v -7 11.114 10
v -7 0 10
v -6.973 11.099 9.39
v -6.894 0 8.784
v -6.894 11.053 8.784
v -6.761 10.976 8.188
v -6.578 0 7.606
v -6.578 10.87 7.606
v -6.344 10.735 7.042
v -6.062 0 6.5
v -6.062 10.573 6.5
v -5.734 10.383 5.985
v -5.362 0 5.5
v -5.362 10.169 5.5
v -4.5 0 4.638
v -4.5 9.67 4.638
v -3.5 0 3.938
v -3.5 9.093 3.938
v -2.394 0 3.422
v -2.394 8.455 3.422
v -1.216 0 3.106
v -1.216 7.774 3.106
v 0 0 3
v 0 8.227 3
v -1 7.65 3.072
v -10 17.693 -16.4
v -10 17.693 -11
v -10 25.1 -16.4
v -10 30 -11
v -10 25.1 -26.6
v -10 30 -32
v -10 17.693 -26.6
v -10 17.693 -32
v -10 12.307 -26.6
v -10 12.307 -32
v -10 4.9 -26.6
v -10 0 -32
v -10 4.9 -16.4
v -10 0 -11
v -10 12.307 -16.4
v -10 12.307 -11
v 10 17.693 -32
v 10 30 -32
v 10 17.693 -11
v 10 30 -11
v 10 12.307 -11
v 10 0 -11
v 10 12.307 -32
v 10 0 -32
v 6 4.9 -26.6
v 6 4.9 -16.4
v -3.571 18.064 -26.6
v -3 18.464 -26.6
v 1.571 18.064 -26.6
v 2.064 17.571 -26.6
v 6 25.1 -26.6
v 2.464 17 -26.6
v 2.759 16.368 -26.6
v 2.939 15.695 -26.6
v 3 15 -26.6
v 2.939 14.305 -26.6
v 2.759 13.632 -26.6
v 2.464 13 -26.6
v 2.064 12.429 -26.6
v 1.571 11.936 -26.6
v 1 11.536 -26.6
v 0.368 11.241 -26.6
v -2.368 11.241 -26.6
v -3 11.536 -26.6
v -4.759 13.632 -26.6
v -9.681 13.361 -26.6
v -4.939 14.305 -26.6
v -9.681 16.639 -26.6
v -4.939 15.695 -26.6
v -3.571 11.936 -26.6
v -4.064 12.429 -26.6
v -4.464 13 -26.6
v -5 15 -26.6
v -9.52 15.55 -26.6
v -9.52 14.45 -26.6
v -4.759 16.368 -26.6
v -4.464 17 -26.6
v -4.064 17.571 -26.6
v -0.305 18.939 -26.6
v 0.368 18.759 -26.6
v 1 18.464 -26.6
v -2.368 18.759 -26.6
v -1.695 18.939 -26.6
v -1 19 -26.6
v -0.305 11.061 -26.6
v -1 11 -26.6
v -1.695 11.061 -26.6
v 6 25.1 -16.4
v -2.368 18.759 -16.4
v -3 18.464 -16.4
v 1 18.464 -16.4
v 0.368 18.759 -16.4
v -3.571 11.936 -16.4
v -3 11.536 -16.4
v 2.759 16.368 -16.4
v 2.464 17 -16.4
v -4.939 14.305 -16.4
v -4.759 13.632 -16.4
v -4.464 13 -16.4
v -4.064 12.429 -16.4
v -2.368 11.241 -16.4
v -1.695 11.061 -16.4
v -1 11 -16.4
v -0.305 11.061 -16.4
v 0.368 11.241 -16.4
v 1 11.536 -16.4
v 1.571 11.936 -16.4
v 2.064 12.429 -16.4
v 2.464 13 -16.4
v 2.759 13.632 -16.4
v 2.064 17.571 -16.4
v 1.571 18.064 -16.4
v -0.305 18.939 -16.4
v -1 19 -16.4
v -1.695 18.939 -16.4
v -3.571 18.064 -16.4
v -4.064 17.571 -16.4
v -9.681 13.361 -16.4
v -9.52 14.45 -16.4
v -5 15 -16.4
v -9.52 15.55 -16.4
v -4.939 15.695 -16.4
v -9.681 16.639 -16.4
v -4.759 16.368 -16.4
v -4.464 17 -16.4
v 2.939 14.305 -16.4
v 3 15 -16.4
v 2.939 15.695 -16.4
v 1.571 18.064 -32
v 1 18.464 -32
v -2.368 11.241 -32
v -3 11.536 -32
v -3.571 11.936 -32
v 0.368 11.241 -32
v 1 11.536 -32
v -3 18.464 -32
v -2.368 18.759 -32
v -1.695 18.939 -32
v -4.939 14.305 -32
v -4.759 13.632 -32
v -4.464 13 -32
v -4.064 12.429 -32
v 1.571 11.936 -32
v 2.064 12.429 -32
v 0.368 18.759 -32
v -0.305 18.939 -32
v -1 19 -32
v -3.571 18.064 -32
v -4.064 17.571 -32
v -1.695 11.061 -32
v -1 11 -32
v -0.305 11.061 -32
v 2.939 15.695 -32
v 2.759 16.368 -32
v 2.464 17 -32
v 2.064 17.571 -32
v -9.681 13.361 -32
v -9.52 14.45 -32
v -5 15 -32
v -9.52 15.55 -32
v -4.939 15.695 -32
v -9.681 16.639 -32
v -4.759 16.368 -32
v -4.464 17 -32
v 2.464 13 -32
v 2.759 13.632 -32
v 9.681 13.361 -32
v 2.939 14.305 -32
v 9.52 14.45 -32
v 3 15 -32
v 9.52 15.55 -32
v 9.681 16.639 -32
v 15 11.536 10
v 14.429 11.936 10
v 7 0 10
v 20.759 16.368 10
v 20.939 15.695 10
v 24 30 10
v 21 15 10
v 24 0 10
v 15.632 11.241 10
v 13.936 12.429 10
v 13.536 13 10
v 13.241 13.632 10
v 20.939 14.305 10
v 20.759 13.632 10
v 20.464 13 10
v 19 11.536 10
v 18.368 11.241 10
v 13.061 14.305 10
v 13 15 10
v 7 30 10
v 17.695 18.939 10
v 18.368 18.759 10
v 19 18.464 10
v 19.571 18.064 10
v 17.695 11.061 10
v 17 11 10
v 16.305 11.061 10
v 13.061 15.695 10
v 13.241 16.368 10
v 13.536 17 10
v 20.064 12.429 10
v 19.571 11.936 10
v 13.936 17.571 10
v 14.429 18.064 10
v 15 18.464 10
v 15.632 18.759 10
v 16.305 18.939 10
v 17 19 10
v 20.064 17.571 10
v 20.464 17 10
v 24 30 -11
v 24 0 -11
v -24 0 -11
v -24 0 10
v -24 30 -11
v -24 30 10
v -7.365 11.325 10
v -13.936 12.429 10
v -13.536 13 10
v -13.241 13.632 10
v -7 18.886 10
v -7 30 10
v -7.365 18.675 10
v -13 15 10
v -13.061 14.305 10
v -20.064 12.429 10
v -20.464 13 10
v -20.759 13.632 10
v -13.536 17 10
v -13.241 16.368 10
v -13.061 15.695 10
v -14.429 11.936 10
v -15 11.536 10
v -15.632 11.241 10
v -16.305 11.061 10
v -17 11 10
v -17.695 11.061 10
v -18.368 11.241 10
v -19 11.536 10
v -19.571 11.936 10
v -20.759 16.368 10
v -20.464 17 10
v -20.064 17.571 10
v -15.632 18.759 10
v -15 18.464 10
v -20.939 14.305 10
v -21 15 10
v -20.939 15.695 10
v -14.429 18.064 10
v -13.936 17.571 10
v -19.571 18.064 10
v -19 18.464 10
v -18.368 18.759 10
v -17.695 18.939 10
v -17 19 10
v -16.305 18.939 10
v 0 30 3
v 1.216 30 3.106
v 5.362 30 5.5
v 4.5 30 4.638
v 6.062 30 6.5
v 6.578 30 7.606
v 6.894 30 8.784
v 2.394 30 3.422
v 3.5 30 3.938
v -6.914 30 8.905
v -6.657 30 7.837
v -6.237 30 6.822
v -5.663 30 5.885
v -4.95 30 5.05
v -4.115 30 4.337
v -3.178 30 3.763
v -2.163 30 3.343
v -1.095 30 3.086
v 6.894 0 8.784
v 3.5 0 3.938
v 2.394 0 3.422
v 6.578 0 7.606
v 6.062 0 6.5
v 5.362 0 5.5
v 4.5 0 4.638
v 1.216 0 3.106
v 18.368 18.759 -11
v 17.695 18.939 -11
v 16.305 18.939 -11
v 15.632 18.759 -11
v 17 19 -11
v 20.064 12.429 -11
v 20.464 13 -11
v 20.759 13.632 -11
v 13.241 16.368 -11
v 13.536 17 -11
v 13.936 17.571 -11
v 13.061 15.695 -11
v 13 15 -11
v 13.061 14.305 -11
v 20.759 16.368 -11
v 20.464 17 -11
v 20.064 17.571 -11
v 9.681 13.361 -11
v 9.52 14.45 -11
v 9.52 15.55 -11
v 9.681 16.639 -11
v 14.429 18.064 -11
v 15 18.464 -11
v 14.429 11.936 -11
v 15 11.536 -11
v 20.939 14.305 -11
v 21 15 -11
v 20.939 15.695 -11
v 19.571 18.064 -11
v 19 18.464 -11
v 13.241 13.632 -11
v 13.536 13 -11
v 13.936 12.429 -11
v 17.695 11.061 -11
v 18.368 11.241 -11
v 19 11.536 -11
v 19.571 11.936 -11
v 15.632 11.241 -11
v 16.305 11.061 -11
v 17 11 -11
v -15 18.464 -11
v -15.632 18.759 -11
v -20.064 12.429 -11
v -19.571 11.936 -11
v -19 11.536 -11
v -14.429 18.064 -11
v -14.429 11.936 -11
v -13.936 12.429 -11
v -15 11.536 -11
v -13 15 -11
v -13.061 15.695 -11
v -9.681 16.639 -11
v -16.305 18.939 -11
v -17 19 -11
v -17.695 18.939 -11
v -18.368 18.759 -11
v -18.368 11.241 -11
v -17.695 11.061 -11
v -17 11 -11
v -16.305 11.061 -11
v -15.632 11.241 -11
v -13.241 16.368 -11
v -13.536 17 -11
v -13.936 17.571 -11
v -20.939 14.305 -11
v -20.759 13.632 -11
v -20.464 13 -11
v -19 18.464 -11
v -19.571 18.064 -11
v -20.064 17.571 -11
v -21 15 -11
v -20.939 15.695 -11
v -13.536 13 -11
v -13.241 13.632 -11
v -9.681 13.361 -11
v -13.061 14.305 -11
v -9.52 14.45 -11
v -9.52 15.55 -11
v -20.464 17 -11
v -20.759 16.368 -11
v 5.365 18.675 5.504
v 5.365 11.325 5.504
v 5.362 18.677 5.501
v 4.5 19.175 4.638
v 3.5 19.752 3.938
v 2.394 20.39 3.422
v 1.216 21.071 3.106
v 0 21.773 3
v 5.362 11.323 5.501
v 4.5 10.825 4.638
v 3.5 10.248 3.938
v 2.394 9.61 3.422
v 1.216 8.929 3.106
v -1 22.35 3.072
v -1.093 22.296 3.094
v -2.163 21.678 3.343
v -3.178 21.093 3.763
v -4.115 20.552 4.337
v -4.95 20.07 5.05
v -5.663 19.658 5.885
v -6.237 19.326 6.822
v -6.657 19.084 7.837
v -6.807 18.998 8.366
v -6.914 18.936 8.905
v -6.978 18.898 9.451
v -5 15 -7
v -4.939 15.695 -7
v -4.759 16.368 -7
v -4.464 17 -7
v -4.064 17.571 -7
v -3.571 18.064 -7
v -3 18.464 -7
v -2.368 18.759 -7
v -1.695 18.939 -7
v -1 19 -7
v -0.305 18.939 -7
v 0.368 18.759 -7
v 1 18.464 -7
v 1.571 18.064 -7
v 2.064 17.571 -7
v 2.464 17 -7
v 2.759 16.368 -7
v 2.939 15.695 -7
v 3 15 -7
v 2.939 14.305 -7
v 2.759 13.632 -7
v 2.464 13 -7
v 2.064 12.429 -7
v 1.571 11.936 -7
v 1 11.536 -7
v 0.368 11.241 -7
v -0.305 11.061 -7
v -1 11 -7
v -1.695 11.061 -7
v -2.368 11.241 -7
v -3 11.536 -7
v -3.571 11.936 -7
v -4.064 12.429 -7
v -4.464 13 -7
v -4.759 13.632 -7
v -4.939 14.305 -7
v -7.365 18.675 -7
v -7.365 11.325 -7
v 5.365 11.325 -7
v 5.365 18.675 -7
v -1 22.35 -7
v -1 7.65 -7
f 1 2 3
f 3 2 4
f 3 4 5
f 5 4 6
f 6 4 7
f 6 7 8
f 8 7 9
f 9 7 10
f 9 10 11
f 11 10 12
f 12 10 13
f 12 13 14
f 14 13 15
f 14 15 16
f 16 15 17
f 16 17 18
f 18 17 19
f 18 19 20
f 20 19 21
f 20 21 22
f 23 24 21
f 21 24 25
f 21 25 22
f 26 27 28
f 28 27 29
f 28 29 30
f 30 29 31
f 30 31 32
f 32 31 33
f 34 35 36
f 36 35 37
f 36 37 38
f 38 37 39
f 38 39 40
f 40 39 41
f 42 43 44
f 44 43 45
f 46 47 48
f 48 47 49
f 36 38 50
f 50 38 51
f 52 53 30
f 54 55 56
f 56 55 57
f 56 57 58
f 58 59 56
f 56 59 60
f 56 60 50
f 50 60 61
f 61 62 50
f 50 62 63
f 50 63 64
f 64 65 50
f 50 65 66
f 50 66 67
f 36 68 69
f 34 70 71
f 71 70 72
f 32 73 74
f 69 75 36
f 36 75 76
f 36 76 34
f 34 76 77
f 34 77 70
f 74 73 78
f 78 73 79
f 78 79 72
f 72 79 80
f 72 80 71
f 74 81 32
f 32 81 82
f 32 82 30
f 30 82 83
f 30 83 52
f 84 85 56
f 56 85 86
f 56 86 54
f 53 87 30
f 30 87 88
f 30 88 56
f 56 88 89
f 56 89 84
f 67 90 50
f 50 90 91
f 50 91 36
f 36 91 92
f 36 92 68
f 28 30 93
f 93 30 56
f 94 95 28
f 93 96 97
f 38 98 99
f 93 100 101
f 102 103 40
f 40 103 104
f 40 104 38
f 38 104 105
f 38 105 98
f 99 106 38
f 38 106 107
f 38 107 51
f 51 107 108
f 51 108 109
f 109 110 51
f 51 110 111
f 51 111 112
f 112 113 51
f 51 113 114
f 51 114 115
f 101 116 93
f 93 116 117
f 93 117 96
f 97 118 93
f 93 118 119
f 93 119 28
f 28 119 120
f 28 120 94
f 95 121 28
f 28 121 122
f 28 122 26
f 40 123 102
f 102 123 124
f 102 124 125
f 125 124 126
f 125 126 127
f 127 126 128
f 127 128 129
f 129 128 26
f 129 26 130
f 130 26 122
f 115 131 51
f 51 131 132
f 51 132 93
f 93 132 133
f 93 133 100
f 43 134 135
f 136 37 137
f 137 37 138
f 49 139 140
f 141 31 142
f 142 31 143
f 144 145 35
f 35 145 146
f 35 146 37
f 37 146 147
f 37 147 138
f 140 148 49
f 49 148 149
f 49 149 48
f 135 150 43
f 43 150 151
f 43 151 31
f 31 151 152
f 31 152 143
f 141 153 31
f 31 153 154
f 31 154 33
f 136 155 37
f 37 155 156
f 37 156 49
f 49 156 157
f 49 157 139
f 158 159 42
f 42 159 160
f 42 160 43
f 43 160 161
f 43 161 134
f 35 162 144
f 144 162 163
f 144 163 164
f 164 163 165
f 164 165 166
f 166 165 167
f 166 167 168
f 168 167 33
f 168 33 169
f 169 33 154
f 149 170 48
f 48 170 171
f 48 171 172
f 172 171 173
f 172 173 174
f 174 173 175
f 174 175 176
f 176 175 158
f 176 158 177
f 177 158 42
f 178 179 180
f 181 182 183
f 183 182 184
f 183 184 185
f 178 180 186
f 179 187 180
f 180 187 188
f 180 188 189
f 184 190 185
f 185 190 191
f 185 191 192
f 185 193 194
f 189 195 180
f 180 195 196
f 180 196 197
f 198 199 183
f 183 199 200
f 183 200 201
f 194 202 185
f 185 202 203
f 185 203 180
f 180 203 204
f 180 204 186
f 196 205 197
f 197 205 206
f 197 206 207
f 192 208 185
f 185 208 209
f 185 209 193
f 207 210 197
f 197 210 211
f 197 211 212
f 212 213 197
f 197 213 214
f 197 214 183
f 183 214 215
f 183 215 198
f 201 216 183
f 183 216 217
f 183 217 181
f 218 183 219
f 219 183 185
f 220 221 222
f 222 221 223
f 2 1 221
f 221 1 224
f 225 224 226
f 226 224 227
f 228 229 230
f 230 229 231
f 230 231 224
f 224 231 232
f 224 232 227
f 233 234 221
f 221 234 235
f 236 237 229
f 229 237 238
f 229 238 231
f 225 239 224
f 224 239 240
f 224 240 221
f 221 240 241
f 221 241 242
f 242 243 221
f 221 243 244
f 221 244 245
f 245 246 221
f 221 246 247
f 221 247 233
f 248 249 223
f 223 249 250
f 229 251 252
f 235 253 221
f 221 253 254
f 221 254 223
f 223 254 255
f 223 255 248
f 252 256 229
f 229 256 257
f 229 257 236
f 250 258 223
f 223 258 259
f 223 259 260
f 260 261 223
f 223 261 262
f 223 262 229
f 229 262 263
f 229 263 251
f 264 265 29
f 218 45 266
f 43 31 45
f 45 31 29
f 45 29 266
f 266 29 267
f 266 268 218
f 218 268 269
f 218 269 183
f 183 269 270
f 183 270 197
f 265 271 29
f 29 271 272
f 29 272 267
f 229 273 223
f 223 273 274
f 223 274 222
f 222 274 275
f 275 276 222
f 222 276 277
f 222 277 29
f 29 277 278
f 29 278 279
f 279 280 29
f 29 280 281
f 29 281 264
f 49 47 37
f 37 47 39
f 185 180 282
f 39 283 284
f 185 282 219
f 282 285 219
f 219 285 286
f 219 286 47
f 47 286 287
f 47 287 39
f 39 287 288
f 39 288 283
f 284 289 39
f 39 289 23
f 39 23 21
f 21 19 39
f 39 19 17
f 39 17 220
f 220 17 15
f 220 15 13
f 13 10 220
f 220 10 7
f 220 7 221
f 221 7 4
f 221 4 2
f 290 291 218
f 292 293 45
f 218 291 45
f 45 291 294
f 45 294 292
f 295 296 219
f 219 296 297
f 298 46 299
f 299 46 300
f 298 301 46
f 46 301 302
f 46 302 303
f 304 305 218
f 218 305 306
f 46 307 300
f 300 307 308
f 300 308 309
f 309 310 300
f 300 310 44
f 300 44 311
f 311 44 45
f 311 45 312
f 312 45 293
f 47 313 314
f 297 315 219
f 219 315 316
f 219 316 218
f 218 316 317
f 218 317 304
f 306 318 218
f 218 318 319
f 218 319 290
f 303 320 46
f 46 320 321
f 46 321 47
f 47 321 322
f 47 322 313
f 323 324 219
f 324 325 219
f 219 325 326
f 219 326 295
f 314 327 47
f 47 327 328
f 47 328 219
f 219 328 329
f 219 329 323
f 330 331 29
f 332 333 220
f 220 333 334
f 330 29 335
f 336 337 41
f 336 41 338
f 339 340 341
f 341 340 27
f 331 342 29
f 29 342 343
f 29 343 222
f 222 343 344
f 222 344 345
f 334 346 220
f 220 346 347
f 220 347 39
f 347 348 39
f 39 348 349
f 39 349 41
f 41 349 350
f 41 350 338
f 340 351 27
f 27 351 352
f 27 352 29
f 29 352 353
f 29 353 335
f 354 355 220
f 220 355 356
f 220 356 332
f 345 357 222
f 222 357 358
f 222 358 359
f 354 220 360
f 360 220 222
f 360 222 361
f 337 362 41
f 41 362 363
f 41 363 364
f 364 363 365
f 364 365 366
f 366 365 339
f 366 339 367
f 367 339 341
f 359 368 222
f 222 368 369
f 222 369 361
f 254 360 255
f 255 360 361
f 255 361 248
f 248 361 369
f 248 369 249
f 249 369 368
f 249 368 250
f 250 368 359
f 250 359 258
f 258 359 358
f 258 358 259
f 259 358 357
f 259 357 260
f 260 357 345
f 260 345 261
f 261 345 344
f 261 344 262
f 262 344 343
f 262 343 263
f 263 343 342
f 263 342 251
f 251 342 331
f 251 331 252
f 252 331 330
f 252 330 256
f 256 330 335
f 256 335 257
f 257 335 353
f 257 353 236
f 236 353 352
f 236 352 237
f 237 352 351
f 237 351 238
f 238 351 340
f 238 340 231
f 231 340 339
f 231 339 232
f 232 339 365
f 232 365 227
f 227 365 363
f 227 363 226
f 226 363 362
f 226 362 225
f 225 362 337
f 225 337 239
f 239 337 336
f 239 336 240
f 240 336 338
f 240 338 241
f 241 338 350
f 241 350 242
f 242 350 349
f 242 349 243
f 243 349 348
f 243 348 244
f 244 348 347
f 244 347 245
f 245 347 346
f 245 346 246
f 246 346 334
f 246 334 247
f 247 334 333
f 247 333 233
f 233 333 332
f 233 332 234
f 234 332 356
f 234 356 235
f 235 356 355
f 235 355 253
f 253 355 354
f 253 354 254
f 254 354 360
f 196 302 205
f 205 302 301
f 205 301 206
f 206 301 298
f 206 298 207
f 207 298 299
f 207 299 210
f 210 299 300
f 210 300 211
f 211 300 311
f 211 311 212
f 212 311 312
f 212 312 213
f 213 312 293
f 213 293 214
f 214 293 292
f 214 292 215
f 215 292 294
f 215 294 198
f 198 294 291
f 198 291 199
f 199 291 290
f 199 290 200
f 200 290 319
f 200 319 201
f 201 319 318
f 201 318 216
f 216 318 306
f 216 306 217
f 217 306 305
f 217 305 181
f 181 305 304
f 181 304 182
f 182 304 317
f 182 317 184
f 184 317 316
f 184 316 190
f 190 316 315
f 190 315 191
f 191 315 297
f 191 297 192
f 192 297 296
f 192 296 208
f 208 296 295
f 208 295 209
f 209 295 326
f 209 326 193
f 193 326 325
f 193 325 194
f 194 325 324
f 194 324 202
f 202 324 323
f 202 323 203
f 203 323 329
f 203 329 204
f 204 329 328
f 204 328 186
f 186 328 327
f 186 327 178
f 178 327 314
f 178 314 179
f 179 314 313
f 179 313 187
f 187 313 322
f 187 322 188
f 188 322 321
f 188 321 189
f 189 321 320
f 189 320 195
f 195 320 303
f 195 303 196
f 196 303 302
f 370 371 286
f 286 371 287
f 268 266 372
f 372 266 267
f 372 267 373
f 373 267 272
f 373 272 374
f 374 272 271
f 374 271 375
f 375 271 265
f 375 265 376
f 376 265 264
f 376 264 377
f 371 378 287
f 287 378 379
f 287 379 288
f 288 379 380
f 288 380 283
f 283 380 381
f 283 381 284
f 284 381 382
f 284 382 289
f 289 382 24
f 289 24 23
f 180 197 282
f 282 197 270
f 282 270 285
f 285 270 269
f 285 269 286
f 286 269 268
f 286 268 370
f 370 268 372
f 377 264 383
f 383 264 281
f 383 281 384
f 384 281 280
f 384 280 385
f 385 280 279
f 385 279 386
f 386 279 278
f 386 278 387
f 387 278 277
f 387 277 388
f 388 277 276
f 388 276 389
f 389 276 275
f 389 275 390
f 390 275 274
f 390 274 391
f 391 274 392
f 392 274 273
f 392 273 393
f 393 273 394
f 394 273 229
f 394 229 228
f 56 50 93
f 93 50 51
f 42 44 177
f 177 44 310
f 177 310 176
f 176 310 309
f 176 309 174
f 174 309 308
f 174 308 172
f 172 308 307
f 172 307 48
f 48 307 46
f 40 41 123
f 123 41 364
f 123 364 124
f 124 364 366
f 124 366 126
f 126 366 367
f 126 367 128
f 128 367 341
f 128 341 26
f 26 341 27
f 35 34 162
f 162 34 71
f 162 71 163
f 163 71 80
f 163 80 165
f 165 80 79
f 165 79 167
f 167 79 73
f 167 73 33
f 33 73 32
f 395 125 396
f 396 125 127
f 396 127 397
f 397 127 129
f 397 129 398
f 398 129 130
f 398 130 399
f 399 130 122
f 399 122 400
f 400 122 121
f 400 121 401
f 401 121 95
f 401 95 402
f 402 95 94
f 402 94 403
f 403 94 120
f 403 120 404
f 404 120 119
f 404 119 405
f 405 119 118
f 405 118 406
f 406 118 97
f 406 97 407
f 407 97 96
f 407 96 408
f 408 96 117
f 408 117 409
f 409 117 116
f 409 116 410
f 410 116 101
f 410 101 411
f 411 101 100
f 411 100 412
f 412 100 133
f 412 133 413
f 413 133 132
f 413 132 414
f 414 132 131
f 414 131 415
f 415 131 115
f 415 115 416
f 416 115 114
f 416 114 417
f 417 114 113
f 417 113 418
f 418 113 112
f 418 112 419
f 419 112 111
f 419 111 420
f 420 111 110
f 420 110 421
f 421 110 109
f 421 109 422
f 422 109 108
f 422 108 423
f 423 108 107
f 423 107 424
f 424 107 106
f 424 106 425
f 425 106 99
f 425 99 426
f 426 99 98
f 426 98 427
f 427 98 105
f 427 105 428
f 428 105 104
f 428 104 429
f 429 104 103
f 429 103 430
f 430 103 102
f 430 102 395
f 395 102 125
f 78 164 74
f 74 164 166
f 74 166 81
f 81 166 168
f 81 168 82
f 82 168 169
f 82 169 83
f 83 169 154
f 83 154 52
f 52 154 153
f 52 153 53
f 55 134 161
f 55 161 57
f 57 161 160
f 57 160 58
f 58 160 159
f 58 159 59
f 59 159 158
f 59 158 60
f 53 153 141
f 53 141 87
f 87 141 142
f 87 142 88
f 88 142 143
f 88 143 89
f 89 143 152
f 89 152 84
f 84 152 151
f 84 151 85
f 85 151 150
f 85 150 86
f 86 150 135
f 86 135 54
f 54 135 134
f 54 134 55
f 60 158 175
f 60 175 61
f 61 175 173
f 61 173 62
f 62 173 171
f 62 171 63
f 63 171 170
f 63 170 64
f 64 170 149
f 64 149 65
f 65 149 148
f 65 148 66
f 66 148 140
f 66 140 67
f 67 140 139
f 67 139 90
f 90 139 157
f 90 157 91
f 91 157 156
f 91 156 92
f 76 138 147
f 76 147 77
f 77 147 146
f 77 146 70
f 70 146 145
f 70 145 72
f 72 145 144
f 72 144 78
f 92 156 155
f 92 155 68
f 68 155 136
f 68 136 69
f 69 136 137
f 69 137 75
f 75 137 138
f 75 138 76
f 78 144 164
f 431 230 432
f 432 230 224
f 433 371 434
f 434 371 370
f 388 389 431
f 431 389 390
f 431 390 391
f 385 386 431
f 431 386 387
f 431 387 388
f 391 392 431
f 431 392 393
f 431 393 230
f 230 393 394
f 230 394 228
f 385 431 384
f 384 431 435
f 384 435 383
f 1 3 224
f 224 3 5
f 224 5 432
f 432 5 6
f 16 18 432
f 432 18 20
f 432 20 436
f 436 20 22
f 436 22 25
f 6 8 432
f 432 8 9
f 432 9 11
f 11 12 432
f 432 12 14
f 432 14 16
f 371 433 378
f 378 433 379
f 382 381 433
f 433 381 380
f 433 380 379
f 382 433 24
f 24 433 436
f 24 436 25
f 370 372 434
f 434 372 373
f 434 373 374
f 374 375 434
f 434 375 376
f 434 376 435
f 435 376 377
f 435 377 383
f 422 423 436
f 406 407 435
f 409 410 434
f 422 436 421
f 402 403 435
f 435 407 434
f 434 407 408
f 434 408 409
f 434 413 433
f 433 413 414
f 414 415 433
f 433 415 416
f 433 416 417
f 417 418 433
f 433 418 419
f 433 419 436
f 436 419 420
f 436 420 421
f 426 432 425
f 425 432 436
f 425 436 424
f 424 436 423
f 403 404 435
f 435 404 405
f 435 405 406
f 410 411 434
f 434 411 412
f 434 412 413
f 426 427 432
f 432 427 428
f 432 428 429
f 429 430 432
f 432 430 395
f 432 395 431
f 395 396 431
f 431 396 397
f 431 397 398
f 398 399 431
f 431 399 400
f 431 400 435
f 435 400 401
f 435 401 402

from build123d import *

# Parameters (mm, degrees)
SKETCH_1_W          = 48
SKETCH_1_H          = 20
EXTRUDE_1_DEPTH     = 30
SKETCH_2_W          = 14
SKETCH_2_H          = 30
CUT_EXTRUDE_1_DEPTH = 7
SKETCH_7_W          = 22
SKETCH_7_H          = 30
EXTRUDE_2_DEPTH     = 48
SKETCH_8_W          = 21
SKETCH_8_H          = 30
CUT_EXTRUDE_2_DEPTH = 14
SKETCH_9_W          = 21
SKETCH_9_H          = 30
CUT_EXTRUDE_3_DEPTH = 14
SKETCH_11_W         = 10.2
SKETCH_11_H         = 20.2
CUT_EXTRUDE_4_DEPTH = 56.497747702
SKETCH_13_R         = 4
CUT_EXTRUDE_5_DEPTH = 44.783558558
SKETCH_14_R         = 4
CUT_EXTRUDE_6_DEPTH = 44.783558558
FILLET_1_R          = 7
SKETCH1_W           = 10.2
SKETCH1_H           = 20.2
BOSS_EXTRUDE1_DEPTH = 4
SKETCH_20_R         = 7.5
CUT_EXTRUDE_8_DEPTH = 44.783558558
SKETCH3_R           = 4
CUT_EXTRUDE2_DEPTH  = 57.920997883
CUT_EXTRUDE3_START  = -25
CUT_EXTRUDE3_DEPTH  = 20


with BuildPart() as part:
    # Эскиз1 → Бобышка-Вытянуть1 (new body)
    with BuildSketch(Plane(origin=(0, 0, 0), x_dir=(1, 0, 0), z_dir=(0, 1, 0))):
        Rectangle(SKETCH_1_W, SKETCH_1_H)
    extrude(amount=EXTRUDE_1_DEPTH)

    # Эскиз2 → Вырез-Вытянуть1 (cut)
    with BuildSketch(Plane.XY.offset(10)):
        with Locations((0, 15)):
            Rectangle(SKETCH_2_W, SKETCH_2_H)
    extrude(amount=-CUT_EXTRUDE_1_DEPTH, mode=Mode.SUBTRACT)

    # Эскиз7 → Бобышка-Вытянуть2 (add)
    with BuildSketch(Plane(origin=(24, 0, 0), x_dir=(0, 0, -1), z_dir=(1, 0, 0))):
        with Locations((21, 15)):
            Rectangle(SKETCH_7_W, SKETCH_7_H)
    extrude(amount=-EXTRUDE_2_DEPTH)

    # Эскиз8 → Вырез-Вытянуть2 (cut)
    with BuildSketch(Plane(origin=(24, 0, 0), x_dir=(0, 0, -1), z_dir=(1, 0, 0))):
        with Locations((21.5, 15)):
            Rectangle(SKETCH_8_W, SKETCH_8_H)
    extrude(amount=-CUT_EXTRUDE_2_DEPTH, mode=Mode.SUBTRACT)

    # Эскиз9 → Вырез-Вытянуть3 (cut)
    with BuildSketch(Plane.ZY.offset(24)):
        with Locations((-21.5, 15)):
            Rectangle(SKETCH_9_W, SKETCH_9_H)
    extrude(amount=-CUT_EXTRUDE_3_DEPTH, mode=Mode.SUBTRACT)

    # Эскиз11 → Вырез-Вытянуть4 (cut, through all)
    with BuildSketch(Plane.ZY.offset(10)):
        with Locations((-21.5, 15)):
            Rectangle(SKETCH_11_W, SKETCH_11_H)
    extrude(amount=-CUT_EXTRUDE_4_DEPTH, mode=Mode.SUBTRACT)

    # Эскиз13 → Вырез-Вытянуть5 (cut, through all)
    with BuildSketch(Plane(origin=(0, 0, -11), x_dir=(-1, 0, 0), z_dir=(0, 0, -1))):
        with Locations((17, 15)):
            Circle(SKETCH_13_R)
    extrude(amount=-CUT_EXTRUDE_5_DEPTH, mode=Mode.SUBTRACT)

    # Эскиз14 → Вырез-Вытянуть6 (cut, through all)
    with BuildSketch(Plane(origin=(0, 0, -11), x_dir=(-1, 0, 0), z_dir=(0, 0, -1))):
        with Locations((-17, 15)):
            Circle(SKETCH_14_R)
    extrude(amount=-CUT_EXTRUDE_6_DEPTH, mode=Mode.SUBTRACT)

    # Скругление1
    fillet_1_edges = [part.edges().sort_by_distance(p)[0] for p in [
        (-7, 15, 3),
        (7, 15, 3),
    ]]
    fillet(fillet_1_edges, radius=FILLET_1_R - 0.0001)  # a hair under: the kernel refuses the full size

    # Sketch1 → Boss-Extrude1 (add)
    with BuildSketch(Plane(origin=(10, 0, 0), x_dir=(0, 0, -1), z_dir=(1, 0, 0))):
        with Locations((21.5, 15)):
            Rectangle(SKETCH1_W, SKETCH1_H)
    extrude(amount=-BOSS_EXTRUDE1_DEPTH)

    # Эскиз20 → Вырез-Вытянуть8 (cut, through all)
    with BuildSketch(Plane(origin=(0, 0, -11), x_dir=(-1, 0, 0), z_dir=(0, 0, -1))):
        with Locations((-17, 15)):
            Circle(SKETCH_20_R)
        with Locations((17, 15)):
            Circle(SKETCH_20_R)
    extrude(amount=CUT_EXTRUDE_8_DEPTH, mode=Mode.SUBTRACT)

    # Sketch3 → Cut-Extrude2 (cut, through all)
    with BuildSketch(Plane(origin=(0, 0, -32), x_dir=(-1, 0, 0), z_dir=(0, 0, -1))):
        with Locations(Location((1, 15, 0), (0, 0, 255.522487814))):
            Circle(SKETCH3_R)
    extrude(amount=-CUT_EXTRUDE2_DEPTH, mode=Mode.SUBTRACT)

    # Sketch4 → Cut-Extrude3 (cut)
    with BuildSketch(Plane(origin=(0, 0, -32), x_dir=(-1, 0, 0), z_dir=(0, 0, -1)).offset(CUT_EXTRUDE3_START)):
        Polygon((1, 22.35), (-5.365286718, 18.675), (-5.365286718, 11.325), (1, 7.65), (7.365286718, 11.325), (7.365286718, 18.675), align=None)
    extrude(amount=-CUT_EXTRUDE3_DEPTH, mode=Mode.SUBTRACT)


solid = part.part
